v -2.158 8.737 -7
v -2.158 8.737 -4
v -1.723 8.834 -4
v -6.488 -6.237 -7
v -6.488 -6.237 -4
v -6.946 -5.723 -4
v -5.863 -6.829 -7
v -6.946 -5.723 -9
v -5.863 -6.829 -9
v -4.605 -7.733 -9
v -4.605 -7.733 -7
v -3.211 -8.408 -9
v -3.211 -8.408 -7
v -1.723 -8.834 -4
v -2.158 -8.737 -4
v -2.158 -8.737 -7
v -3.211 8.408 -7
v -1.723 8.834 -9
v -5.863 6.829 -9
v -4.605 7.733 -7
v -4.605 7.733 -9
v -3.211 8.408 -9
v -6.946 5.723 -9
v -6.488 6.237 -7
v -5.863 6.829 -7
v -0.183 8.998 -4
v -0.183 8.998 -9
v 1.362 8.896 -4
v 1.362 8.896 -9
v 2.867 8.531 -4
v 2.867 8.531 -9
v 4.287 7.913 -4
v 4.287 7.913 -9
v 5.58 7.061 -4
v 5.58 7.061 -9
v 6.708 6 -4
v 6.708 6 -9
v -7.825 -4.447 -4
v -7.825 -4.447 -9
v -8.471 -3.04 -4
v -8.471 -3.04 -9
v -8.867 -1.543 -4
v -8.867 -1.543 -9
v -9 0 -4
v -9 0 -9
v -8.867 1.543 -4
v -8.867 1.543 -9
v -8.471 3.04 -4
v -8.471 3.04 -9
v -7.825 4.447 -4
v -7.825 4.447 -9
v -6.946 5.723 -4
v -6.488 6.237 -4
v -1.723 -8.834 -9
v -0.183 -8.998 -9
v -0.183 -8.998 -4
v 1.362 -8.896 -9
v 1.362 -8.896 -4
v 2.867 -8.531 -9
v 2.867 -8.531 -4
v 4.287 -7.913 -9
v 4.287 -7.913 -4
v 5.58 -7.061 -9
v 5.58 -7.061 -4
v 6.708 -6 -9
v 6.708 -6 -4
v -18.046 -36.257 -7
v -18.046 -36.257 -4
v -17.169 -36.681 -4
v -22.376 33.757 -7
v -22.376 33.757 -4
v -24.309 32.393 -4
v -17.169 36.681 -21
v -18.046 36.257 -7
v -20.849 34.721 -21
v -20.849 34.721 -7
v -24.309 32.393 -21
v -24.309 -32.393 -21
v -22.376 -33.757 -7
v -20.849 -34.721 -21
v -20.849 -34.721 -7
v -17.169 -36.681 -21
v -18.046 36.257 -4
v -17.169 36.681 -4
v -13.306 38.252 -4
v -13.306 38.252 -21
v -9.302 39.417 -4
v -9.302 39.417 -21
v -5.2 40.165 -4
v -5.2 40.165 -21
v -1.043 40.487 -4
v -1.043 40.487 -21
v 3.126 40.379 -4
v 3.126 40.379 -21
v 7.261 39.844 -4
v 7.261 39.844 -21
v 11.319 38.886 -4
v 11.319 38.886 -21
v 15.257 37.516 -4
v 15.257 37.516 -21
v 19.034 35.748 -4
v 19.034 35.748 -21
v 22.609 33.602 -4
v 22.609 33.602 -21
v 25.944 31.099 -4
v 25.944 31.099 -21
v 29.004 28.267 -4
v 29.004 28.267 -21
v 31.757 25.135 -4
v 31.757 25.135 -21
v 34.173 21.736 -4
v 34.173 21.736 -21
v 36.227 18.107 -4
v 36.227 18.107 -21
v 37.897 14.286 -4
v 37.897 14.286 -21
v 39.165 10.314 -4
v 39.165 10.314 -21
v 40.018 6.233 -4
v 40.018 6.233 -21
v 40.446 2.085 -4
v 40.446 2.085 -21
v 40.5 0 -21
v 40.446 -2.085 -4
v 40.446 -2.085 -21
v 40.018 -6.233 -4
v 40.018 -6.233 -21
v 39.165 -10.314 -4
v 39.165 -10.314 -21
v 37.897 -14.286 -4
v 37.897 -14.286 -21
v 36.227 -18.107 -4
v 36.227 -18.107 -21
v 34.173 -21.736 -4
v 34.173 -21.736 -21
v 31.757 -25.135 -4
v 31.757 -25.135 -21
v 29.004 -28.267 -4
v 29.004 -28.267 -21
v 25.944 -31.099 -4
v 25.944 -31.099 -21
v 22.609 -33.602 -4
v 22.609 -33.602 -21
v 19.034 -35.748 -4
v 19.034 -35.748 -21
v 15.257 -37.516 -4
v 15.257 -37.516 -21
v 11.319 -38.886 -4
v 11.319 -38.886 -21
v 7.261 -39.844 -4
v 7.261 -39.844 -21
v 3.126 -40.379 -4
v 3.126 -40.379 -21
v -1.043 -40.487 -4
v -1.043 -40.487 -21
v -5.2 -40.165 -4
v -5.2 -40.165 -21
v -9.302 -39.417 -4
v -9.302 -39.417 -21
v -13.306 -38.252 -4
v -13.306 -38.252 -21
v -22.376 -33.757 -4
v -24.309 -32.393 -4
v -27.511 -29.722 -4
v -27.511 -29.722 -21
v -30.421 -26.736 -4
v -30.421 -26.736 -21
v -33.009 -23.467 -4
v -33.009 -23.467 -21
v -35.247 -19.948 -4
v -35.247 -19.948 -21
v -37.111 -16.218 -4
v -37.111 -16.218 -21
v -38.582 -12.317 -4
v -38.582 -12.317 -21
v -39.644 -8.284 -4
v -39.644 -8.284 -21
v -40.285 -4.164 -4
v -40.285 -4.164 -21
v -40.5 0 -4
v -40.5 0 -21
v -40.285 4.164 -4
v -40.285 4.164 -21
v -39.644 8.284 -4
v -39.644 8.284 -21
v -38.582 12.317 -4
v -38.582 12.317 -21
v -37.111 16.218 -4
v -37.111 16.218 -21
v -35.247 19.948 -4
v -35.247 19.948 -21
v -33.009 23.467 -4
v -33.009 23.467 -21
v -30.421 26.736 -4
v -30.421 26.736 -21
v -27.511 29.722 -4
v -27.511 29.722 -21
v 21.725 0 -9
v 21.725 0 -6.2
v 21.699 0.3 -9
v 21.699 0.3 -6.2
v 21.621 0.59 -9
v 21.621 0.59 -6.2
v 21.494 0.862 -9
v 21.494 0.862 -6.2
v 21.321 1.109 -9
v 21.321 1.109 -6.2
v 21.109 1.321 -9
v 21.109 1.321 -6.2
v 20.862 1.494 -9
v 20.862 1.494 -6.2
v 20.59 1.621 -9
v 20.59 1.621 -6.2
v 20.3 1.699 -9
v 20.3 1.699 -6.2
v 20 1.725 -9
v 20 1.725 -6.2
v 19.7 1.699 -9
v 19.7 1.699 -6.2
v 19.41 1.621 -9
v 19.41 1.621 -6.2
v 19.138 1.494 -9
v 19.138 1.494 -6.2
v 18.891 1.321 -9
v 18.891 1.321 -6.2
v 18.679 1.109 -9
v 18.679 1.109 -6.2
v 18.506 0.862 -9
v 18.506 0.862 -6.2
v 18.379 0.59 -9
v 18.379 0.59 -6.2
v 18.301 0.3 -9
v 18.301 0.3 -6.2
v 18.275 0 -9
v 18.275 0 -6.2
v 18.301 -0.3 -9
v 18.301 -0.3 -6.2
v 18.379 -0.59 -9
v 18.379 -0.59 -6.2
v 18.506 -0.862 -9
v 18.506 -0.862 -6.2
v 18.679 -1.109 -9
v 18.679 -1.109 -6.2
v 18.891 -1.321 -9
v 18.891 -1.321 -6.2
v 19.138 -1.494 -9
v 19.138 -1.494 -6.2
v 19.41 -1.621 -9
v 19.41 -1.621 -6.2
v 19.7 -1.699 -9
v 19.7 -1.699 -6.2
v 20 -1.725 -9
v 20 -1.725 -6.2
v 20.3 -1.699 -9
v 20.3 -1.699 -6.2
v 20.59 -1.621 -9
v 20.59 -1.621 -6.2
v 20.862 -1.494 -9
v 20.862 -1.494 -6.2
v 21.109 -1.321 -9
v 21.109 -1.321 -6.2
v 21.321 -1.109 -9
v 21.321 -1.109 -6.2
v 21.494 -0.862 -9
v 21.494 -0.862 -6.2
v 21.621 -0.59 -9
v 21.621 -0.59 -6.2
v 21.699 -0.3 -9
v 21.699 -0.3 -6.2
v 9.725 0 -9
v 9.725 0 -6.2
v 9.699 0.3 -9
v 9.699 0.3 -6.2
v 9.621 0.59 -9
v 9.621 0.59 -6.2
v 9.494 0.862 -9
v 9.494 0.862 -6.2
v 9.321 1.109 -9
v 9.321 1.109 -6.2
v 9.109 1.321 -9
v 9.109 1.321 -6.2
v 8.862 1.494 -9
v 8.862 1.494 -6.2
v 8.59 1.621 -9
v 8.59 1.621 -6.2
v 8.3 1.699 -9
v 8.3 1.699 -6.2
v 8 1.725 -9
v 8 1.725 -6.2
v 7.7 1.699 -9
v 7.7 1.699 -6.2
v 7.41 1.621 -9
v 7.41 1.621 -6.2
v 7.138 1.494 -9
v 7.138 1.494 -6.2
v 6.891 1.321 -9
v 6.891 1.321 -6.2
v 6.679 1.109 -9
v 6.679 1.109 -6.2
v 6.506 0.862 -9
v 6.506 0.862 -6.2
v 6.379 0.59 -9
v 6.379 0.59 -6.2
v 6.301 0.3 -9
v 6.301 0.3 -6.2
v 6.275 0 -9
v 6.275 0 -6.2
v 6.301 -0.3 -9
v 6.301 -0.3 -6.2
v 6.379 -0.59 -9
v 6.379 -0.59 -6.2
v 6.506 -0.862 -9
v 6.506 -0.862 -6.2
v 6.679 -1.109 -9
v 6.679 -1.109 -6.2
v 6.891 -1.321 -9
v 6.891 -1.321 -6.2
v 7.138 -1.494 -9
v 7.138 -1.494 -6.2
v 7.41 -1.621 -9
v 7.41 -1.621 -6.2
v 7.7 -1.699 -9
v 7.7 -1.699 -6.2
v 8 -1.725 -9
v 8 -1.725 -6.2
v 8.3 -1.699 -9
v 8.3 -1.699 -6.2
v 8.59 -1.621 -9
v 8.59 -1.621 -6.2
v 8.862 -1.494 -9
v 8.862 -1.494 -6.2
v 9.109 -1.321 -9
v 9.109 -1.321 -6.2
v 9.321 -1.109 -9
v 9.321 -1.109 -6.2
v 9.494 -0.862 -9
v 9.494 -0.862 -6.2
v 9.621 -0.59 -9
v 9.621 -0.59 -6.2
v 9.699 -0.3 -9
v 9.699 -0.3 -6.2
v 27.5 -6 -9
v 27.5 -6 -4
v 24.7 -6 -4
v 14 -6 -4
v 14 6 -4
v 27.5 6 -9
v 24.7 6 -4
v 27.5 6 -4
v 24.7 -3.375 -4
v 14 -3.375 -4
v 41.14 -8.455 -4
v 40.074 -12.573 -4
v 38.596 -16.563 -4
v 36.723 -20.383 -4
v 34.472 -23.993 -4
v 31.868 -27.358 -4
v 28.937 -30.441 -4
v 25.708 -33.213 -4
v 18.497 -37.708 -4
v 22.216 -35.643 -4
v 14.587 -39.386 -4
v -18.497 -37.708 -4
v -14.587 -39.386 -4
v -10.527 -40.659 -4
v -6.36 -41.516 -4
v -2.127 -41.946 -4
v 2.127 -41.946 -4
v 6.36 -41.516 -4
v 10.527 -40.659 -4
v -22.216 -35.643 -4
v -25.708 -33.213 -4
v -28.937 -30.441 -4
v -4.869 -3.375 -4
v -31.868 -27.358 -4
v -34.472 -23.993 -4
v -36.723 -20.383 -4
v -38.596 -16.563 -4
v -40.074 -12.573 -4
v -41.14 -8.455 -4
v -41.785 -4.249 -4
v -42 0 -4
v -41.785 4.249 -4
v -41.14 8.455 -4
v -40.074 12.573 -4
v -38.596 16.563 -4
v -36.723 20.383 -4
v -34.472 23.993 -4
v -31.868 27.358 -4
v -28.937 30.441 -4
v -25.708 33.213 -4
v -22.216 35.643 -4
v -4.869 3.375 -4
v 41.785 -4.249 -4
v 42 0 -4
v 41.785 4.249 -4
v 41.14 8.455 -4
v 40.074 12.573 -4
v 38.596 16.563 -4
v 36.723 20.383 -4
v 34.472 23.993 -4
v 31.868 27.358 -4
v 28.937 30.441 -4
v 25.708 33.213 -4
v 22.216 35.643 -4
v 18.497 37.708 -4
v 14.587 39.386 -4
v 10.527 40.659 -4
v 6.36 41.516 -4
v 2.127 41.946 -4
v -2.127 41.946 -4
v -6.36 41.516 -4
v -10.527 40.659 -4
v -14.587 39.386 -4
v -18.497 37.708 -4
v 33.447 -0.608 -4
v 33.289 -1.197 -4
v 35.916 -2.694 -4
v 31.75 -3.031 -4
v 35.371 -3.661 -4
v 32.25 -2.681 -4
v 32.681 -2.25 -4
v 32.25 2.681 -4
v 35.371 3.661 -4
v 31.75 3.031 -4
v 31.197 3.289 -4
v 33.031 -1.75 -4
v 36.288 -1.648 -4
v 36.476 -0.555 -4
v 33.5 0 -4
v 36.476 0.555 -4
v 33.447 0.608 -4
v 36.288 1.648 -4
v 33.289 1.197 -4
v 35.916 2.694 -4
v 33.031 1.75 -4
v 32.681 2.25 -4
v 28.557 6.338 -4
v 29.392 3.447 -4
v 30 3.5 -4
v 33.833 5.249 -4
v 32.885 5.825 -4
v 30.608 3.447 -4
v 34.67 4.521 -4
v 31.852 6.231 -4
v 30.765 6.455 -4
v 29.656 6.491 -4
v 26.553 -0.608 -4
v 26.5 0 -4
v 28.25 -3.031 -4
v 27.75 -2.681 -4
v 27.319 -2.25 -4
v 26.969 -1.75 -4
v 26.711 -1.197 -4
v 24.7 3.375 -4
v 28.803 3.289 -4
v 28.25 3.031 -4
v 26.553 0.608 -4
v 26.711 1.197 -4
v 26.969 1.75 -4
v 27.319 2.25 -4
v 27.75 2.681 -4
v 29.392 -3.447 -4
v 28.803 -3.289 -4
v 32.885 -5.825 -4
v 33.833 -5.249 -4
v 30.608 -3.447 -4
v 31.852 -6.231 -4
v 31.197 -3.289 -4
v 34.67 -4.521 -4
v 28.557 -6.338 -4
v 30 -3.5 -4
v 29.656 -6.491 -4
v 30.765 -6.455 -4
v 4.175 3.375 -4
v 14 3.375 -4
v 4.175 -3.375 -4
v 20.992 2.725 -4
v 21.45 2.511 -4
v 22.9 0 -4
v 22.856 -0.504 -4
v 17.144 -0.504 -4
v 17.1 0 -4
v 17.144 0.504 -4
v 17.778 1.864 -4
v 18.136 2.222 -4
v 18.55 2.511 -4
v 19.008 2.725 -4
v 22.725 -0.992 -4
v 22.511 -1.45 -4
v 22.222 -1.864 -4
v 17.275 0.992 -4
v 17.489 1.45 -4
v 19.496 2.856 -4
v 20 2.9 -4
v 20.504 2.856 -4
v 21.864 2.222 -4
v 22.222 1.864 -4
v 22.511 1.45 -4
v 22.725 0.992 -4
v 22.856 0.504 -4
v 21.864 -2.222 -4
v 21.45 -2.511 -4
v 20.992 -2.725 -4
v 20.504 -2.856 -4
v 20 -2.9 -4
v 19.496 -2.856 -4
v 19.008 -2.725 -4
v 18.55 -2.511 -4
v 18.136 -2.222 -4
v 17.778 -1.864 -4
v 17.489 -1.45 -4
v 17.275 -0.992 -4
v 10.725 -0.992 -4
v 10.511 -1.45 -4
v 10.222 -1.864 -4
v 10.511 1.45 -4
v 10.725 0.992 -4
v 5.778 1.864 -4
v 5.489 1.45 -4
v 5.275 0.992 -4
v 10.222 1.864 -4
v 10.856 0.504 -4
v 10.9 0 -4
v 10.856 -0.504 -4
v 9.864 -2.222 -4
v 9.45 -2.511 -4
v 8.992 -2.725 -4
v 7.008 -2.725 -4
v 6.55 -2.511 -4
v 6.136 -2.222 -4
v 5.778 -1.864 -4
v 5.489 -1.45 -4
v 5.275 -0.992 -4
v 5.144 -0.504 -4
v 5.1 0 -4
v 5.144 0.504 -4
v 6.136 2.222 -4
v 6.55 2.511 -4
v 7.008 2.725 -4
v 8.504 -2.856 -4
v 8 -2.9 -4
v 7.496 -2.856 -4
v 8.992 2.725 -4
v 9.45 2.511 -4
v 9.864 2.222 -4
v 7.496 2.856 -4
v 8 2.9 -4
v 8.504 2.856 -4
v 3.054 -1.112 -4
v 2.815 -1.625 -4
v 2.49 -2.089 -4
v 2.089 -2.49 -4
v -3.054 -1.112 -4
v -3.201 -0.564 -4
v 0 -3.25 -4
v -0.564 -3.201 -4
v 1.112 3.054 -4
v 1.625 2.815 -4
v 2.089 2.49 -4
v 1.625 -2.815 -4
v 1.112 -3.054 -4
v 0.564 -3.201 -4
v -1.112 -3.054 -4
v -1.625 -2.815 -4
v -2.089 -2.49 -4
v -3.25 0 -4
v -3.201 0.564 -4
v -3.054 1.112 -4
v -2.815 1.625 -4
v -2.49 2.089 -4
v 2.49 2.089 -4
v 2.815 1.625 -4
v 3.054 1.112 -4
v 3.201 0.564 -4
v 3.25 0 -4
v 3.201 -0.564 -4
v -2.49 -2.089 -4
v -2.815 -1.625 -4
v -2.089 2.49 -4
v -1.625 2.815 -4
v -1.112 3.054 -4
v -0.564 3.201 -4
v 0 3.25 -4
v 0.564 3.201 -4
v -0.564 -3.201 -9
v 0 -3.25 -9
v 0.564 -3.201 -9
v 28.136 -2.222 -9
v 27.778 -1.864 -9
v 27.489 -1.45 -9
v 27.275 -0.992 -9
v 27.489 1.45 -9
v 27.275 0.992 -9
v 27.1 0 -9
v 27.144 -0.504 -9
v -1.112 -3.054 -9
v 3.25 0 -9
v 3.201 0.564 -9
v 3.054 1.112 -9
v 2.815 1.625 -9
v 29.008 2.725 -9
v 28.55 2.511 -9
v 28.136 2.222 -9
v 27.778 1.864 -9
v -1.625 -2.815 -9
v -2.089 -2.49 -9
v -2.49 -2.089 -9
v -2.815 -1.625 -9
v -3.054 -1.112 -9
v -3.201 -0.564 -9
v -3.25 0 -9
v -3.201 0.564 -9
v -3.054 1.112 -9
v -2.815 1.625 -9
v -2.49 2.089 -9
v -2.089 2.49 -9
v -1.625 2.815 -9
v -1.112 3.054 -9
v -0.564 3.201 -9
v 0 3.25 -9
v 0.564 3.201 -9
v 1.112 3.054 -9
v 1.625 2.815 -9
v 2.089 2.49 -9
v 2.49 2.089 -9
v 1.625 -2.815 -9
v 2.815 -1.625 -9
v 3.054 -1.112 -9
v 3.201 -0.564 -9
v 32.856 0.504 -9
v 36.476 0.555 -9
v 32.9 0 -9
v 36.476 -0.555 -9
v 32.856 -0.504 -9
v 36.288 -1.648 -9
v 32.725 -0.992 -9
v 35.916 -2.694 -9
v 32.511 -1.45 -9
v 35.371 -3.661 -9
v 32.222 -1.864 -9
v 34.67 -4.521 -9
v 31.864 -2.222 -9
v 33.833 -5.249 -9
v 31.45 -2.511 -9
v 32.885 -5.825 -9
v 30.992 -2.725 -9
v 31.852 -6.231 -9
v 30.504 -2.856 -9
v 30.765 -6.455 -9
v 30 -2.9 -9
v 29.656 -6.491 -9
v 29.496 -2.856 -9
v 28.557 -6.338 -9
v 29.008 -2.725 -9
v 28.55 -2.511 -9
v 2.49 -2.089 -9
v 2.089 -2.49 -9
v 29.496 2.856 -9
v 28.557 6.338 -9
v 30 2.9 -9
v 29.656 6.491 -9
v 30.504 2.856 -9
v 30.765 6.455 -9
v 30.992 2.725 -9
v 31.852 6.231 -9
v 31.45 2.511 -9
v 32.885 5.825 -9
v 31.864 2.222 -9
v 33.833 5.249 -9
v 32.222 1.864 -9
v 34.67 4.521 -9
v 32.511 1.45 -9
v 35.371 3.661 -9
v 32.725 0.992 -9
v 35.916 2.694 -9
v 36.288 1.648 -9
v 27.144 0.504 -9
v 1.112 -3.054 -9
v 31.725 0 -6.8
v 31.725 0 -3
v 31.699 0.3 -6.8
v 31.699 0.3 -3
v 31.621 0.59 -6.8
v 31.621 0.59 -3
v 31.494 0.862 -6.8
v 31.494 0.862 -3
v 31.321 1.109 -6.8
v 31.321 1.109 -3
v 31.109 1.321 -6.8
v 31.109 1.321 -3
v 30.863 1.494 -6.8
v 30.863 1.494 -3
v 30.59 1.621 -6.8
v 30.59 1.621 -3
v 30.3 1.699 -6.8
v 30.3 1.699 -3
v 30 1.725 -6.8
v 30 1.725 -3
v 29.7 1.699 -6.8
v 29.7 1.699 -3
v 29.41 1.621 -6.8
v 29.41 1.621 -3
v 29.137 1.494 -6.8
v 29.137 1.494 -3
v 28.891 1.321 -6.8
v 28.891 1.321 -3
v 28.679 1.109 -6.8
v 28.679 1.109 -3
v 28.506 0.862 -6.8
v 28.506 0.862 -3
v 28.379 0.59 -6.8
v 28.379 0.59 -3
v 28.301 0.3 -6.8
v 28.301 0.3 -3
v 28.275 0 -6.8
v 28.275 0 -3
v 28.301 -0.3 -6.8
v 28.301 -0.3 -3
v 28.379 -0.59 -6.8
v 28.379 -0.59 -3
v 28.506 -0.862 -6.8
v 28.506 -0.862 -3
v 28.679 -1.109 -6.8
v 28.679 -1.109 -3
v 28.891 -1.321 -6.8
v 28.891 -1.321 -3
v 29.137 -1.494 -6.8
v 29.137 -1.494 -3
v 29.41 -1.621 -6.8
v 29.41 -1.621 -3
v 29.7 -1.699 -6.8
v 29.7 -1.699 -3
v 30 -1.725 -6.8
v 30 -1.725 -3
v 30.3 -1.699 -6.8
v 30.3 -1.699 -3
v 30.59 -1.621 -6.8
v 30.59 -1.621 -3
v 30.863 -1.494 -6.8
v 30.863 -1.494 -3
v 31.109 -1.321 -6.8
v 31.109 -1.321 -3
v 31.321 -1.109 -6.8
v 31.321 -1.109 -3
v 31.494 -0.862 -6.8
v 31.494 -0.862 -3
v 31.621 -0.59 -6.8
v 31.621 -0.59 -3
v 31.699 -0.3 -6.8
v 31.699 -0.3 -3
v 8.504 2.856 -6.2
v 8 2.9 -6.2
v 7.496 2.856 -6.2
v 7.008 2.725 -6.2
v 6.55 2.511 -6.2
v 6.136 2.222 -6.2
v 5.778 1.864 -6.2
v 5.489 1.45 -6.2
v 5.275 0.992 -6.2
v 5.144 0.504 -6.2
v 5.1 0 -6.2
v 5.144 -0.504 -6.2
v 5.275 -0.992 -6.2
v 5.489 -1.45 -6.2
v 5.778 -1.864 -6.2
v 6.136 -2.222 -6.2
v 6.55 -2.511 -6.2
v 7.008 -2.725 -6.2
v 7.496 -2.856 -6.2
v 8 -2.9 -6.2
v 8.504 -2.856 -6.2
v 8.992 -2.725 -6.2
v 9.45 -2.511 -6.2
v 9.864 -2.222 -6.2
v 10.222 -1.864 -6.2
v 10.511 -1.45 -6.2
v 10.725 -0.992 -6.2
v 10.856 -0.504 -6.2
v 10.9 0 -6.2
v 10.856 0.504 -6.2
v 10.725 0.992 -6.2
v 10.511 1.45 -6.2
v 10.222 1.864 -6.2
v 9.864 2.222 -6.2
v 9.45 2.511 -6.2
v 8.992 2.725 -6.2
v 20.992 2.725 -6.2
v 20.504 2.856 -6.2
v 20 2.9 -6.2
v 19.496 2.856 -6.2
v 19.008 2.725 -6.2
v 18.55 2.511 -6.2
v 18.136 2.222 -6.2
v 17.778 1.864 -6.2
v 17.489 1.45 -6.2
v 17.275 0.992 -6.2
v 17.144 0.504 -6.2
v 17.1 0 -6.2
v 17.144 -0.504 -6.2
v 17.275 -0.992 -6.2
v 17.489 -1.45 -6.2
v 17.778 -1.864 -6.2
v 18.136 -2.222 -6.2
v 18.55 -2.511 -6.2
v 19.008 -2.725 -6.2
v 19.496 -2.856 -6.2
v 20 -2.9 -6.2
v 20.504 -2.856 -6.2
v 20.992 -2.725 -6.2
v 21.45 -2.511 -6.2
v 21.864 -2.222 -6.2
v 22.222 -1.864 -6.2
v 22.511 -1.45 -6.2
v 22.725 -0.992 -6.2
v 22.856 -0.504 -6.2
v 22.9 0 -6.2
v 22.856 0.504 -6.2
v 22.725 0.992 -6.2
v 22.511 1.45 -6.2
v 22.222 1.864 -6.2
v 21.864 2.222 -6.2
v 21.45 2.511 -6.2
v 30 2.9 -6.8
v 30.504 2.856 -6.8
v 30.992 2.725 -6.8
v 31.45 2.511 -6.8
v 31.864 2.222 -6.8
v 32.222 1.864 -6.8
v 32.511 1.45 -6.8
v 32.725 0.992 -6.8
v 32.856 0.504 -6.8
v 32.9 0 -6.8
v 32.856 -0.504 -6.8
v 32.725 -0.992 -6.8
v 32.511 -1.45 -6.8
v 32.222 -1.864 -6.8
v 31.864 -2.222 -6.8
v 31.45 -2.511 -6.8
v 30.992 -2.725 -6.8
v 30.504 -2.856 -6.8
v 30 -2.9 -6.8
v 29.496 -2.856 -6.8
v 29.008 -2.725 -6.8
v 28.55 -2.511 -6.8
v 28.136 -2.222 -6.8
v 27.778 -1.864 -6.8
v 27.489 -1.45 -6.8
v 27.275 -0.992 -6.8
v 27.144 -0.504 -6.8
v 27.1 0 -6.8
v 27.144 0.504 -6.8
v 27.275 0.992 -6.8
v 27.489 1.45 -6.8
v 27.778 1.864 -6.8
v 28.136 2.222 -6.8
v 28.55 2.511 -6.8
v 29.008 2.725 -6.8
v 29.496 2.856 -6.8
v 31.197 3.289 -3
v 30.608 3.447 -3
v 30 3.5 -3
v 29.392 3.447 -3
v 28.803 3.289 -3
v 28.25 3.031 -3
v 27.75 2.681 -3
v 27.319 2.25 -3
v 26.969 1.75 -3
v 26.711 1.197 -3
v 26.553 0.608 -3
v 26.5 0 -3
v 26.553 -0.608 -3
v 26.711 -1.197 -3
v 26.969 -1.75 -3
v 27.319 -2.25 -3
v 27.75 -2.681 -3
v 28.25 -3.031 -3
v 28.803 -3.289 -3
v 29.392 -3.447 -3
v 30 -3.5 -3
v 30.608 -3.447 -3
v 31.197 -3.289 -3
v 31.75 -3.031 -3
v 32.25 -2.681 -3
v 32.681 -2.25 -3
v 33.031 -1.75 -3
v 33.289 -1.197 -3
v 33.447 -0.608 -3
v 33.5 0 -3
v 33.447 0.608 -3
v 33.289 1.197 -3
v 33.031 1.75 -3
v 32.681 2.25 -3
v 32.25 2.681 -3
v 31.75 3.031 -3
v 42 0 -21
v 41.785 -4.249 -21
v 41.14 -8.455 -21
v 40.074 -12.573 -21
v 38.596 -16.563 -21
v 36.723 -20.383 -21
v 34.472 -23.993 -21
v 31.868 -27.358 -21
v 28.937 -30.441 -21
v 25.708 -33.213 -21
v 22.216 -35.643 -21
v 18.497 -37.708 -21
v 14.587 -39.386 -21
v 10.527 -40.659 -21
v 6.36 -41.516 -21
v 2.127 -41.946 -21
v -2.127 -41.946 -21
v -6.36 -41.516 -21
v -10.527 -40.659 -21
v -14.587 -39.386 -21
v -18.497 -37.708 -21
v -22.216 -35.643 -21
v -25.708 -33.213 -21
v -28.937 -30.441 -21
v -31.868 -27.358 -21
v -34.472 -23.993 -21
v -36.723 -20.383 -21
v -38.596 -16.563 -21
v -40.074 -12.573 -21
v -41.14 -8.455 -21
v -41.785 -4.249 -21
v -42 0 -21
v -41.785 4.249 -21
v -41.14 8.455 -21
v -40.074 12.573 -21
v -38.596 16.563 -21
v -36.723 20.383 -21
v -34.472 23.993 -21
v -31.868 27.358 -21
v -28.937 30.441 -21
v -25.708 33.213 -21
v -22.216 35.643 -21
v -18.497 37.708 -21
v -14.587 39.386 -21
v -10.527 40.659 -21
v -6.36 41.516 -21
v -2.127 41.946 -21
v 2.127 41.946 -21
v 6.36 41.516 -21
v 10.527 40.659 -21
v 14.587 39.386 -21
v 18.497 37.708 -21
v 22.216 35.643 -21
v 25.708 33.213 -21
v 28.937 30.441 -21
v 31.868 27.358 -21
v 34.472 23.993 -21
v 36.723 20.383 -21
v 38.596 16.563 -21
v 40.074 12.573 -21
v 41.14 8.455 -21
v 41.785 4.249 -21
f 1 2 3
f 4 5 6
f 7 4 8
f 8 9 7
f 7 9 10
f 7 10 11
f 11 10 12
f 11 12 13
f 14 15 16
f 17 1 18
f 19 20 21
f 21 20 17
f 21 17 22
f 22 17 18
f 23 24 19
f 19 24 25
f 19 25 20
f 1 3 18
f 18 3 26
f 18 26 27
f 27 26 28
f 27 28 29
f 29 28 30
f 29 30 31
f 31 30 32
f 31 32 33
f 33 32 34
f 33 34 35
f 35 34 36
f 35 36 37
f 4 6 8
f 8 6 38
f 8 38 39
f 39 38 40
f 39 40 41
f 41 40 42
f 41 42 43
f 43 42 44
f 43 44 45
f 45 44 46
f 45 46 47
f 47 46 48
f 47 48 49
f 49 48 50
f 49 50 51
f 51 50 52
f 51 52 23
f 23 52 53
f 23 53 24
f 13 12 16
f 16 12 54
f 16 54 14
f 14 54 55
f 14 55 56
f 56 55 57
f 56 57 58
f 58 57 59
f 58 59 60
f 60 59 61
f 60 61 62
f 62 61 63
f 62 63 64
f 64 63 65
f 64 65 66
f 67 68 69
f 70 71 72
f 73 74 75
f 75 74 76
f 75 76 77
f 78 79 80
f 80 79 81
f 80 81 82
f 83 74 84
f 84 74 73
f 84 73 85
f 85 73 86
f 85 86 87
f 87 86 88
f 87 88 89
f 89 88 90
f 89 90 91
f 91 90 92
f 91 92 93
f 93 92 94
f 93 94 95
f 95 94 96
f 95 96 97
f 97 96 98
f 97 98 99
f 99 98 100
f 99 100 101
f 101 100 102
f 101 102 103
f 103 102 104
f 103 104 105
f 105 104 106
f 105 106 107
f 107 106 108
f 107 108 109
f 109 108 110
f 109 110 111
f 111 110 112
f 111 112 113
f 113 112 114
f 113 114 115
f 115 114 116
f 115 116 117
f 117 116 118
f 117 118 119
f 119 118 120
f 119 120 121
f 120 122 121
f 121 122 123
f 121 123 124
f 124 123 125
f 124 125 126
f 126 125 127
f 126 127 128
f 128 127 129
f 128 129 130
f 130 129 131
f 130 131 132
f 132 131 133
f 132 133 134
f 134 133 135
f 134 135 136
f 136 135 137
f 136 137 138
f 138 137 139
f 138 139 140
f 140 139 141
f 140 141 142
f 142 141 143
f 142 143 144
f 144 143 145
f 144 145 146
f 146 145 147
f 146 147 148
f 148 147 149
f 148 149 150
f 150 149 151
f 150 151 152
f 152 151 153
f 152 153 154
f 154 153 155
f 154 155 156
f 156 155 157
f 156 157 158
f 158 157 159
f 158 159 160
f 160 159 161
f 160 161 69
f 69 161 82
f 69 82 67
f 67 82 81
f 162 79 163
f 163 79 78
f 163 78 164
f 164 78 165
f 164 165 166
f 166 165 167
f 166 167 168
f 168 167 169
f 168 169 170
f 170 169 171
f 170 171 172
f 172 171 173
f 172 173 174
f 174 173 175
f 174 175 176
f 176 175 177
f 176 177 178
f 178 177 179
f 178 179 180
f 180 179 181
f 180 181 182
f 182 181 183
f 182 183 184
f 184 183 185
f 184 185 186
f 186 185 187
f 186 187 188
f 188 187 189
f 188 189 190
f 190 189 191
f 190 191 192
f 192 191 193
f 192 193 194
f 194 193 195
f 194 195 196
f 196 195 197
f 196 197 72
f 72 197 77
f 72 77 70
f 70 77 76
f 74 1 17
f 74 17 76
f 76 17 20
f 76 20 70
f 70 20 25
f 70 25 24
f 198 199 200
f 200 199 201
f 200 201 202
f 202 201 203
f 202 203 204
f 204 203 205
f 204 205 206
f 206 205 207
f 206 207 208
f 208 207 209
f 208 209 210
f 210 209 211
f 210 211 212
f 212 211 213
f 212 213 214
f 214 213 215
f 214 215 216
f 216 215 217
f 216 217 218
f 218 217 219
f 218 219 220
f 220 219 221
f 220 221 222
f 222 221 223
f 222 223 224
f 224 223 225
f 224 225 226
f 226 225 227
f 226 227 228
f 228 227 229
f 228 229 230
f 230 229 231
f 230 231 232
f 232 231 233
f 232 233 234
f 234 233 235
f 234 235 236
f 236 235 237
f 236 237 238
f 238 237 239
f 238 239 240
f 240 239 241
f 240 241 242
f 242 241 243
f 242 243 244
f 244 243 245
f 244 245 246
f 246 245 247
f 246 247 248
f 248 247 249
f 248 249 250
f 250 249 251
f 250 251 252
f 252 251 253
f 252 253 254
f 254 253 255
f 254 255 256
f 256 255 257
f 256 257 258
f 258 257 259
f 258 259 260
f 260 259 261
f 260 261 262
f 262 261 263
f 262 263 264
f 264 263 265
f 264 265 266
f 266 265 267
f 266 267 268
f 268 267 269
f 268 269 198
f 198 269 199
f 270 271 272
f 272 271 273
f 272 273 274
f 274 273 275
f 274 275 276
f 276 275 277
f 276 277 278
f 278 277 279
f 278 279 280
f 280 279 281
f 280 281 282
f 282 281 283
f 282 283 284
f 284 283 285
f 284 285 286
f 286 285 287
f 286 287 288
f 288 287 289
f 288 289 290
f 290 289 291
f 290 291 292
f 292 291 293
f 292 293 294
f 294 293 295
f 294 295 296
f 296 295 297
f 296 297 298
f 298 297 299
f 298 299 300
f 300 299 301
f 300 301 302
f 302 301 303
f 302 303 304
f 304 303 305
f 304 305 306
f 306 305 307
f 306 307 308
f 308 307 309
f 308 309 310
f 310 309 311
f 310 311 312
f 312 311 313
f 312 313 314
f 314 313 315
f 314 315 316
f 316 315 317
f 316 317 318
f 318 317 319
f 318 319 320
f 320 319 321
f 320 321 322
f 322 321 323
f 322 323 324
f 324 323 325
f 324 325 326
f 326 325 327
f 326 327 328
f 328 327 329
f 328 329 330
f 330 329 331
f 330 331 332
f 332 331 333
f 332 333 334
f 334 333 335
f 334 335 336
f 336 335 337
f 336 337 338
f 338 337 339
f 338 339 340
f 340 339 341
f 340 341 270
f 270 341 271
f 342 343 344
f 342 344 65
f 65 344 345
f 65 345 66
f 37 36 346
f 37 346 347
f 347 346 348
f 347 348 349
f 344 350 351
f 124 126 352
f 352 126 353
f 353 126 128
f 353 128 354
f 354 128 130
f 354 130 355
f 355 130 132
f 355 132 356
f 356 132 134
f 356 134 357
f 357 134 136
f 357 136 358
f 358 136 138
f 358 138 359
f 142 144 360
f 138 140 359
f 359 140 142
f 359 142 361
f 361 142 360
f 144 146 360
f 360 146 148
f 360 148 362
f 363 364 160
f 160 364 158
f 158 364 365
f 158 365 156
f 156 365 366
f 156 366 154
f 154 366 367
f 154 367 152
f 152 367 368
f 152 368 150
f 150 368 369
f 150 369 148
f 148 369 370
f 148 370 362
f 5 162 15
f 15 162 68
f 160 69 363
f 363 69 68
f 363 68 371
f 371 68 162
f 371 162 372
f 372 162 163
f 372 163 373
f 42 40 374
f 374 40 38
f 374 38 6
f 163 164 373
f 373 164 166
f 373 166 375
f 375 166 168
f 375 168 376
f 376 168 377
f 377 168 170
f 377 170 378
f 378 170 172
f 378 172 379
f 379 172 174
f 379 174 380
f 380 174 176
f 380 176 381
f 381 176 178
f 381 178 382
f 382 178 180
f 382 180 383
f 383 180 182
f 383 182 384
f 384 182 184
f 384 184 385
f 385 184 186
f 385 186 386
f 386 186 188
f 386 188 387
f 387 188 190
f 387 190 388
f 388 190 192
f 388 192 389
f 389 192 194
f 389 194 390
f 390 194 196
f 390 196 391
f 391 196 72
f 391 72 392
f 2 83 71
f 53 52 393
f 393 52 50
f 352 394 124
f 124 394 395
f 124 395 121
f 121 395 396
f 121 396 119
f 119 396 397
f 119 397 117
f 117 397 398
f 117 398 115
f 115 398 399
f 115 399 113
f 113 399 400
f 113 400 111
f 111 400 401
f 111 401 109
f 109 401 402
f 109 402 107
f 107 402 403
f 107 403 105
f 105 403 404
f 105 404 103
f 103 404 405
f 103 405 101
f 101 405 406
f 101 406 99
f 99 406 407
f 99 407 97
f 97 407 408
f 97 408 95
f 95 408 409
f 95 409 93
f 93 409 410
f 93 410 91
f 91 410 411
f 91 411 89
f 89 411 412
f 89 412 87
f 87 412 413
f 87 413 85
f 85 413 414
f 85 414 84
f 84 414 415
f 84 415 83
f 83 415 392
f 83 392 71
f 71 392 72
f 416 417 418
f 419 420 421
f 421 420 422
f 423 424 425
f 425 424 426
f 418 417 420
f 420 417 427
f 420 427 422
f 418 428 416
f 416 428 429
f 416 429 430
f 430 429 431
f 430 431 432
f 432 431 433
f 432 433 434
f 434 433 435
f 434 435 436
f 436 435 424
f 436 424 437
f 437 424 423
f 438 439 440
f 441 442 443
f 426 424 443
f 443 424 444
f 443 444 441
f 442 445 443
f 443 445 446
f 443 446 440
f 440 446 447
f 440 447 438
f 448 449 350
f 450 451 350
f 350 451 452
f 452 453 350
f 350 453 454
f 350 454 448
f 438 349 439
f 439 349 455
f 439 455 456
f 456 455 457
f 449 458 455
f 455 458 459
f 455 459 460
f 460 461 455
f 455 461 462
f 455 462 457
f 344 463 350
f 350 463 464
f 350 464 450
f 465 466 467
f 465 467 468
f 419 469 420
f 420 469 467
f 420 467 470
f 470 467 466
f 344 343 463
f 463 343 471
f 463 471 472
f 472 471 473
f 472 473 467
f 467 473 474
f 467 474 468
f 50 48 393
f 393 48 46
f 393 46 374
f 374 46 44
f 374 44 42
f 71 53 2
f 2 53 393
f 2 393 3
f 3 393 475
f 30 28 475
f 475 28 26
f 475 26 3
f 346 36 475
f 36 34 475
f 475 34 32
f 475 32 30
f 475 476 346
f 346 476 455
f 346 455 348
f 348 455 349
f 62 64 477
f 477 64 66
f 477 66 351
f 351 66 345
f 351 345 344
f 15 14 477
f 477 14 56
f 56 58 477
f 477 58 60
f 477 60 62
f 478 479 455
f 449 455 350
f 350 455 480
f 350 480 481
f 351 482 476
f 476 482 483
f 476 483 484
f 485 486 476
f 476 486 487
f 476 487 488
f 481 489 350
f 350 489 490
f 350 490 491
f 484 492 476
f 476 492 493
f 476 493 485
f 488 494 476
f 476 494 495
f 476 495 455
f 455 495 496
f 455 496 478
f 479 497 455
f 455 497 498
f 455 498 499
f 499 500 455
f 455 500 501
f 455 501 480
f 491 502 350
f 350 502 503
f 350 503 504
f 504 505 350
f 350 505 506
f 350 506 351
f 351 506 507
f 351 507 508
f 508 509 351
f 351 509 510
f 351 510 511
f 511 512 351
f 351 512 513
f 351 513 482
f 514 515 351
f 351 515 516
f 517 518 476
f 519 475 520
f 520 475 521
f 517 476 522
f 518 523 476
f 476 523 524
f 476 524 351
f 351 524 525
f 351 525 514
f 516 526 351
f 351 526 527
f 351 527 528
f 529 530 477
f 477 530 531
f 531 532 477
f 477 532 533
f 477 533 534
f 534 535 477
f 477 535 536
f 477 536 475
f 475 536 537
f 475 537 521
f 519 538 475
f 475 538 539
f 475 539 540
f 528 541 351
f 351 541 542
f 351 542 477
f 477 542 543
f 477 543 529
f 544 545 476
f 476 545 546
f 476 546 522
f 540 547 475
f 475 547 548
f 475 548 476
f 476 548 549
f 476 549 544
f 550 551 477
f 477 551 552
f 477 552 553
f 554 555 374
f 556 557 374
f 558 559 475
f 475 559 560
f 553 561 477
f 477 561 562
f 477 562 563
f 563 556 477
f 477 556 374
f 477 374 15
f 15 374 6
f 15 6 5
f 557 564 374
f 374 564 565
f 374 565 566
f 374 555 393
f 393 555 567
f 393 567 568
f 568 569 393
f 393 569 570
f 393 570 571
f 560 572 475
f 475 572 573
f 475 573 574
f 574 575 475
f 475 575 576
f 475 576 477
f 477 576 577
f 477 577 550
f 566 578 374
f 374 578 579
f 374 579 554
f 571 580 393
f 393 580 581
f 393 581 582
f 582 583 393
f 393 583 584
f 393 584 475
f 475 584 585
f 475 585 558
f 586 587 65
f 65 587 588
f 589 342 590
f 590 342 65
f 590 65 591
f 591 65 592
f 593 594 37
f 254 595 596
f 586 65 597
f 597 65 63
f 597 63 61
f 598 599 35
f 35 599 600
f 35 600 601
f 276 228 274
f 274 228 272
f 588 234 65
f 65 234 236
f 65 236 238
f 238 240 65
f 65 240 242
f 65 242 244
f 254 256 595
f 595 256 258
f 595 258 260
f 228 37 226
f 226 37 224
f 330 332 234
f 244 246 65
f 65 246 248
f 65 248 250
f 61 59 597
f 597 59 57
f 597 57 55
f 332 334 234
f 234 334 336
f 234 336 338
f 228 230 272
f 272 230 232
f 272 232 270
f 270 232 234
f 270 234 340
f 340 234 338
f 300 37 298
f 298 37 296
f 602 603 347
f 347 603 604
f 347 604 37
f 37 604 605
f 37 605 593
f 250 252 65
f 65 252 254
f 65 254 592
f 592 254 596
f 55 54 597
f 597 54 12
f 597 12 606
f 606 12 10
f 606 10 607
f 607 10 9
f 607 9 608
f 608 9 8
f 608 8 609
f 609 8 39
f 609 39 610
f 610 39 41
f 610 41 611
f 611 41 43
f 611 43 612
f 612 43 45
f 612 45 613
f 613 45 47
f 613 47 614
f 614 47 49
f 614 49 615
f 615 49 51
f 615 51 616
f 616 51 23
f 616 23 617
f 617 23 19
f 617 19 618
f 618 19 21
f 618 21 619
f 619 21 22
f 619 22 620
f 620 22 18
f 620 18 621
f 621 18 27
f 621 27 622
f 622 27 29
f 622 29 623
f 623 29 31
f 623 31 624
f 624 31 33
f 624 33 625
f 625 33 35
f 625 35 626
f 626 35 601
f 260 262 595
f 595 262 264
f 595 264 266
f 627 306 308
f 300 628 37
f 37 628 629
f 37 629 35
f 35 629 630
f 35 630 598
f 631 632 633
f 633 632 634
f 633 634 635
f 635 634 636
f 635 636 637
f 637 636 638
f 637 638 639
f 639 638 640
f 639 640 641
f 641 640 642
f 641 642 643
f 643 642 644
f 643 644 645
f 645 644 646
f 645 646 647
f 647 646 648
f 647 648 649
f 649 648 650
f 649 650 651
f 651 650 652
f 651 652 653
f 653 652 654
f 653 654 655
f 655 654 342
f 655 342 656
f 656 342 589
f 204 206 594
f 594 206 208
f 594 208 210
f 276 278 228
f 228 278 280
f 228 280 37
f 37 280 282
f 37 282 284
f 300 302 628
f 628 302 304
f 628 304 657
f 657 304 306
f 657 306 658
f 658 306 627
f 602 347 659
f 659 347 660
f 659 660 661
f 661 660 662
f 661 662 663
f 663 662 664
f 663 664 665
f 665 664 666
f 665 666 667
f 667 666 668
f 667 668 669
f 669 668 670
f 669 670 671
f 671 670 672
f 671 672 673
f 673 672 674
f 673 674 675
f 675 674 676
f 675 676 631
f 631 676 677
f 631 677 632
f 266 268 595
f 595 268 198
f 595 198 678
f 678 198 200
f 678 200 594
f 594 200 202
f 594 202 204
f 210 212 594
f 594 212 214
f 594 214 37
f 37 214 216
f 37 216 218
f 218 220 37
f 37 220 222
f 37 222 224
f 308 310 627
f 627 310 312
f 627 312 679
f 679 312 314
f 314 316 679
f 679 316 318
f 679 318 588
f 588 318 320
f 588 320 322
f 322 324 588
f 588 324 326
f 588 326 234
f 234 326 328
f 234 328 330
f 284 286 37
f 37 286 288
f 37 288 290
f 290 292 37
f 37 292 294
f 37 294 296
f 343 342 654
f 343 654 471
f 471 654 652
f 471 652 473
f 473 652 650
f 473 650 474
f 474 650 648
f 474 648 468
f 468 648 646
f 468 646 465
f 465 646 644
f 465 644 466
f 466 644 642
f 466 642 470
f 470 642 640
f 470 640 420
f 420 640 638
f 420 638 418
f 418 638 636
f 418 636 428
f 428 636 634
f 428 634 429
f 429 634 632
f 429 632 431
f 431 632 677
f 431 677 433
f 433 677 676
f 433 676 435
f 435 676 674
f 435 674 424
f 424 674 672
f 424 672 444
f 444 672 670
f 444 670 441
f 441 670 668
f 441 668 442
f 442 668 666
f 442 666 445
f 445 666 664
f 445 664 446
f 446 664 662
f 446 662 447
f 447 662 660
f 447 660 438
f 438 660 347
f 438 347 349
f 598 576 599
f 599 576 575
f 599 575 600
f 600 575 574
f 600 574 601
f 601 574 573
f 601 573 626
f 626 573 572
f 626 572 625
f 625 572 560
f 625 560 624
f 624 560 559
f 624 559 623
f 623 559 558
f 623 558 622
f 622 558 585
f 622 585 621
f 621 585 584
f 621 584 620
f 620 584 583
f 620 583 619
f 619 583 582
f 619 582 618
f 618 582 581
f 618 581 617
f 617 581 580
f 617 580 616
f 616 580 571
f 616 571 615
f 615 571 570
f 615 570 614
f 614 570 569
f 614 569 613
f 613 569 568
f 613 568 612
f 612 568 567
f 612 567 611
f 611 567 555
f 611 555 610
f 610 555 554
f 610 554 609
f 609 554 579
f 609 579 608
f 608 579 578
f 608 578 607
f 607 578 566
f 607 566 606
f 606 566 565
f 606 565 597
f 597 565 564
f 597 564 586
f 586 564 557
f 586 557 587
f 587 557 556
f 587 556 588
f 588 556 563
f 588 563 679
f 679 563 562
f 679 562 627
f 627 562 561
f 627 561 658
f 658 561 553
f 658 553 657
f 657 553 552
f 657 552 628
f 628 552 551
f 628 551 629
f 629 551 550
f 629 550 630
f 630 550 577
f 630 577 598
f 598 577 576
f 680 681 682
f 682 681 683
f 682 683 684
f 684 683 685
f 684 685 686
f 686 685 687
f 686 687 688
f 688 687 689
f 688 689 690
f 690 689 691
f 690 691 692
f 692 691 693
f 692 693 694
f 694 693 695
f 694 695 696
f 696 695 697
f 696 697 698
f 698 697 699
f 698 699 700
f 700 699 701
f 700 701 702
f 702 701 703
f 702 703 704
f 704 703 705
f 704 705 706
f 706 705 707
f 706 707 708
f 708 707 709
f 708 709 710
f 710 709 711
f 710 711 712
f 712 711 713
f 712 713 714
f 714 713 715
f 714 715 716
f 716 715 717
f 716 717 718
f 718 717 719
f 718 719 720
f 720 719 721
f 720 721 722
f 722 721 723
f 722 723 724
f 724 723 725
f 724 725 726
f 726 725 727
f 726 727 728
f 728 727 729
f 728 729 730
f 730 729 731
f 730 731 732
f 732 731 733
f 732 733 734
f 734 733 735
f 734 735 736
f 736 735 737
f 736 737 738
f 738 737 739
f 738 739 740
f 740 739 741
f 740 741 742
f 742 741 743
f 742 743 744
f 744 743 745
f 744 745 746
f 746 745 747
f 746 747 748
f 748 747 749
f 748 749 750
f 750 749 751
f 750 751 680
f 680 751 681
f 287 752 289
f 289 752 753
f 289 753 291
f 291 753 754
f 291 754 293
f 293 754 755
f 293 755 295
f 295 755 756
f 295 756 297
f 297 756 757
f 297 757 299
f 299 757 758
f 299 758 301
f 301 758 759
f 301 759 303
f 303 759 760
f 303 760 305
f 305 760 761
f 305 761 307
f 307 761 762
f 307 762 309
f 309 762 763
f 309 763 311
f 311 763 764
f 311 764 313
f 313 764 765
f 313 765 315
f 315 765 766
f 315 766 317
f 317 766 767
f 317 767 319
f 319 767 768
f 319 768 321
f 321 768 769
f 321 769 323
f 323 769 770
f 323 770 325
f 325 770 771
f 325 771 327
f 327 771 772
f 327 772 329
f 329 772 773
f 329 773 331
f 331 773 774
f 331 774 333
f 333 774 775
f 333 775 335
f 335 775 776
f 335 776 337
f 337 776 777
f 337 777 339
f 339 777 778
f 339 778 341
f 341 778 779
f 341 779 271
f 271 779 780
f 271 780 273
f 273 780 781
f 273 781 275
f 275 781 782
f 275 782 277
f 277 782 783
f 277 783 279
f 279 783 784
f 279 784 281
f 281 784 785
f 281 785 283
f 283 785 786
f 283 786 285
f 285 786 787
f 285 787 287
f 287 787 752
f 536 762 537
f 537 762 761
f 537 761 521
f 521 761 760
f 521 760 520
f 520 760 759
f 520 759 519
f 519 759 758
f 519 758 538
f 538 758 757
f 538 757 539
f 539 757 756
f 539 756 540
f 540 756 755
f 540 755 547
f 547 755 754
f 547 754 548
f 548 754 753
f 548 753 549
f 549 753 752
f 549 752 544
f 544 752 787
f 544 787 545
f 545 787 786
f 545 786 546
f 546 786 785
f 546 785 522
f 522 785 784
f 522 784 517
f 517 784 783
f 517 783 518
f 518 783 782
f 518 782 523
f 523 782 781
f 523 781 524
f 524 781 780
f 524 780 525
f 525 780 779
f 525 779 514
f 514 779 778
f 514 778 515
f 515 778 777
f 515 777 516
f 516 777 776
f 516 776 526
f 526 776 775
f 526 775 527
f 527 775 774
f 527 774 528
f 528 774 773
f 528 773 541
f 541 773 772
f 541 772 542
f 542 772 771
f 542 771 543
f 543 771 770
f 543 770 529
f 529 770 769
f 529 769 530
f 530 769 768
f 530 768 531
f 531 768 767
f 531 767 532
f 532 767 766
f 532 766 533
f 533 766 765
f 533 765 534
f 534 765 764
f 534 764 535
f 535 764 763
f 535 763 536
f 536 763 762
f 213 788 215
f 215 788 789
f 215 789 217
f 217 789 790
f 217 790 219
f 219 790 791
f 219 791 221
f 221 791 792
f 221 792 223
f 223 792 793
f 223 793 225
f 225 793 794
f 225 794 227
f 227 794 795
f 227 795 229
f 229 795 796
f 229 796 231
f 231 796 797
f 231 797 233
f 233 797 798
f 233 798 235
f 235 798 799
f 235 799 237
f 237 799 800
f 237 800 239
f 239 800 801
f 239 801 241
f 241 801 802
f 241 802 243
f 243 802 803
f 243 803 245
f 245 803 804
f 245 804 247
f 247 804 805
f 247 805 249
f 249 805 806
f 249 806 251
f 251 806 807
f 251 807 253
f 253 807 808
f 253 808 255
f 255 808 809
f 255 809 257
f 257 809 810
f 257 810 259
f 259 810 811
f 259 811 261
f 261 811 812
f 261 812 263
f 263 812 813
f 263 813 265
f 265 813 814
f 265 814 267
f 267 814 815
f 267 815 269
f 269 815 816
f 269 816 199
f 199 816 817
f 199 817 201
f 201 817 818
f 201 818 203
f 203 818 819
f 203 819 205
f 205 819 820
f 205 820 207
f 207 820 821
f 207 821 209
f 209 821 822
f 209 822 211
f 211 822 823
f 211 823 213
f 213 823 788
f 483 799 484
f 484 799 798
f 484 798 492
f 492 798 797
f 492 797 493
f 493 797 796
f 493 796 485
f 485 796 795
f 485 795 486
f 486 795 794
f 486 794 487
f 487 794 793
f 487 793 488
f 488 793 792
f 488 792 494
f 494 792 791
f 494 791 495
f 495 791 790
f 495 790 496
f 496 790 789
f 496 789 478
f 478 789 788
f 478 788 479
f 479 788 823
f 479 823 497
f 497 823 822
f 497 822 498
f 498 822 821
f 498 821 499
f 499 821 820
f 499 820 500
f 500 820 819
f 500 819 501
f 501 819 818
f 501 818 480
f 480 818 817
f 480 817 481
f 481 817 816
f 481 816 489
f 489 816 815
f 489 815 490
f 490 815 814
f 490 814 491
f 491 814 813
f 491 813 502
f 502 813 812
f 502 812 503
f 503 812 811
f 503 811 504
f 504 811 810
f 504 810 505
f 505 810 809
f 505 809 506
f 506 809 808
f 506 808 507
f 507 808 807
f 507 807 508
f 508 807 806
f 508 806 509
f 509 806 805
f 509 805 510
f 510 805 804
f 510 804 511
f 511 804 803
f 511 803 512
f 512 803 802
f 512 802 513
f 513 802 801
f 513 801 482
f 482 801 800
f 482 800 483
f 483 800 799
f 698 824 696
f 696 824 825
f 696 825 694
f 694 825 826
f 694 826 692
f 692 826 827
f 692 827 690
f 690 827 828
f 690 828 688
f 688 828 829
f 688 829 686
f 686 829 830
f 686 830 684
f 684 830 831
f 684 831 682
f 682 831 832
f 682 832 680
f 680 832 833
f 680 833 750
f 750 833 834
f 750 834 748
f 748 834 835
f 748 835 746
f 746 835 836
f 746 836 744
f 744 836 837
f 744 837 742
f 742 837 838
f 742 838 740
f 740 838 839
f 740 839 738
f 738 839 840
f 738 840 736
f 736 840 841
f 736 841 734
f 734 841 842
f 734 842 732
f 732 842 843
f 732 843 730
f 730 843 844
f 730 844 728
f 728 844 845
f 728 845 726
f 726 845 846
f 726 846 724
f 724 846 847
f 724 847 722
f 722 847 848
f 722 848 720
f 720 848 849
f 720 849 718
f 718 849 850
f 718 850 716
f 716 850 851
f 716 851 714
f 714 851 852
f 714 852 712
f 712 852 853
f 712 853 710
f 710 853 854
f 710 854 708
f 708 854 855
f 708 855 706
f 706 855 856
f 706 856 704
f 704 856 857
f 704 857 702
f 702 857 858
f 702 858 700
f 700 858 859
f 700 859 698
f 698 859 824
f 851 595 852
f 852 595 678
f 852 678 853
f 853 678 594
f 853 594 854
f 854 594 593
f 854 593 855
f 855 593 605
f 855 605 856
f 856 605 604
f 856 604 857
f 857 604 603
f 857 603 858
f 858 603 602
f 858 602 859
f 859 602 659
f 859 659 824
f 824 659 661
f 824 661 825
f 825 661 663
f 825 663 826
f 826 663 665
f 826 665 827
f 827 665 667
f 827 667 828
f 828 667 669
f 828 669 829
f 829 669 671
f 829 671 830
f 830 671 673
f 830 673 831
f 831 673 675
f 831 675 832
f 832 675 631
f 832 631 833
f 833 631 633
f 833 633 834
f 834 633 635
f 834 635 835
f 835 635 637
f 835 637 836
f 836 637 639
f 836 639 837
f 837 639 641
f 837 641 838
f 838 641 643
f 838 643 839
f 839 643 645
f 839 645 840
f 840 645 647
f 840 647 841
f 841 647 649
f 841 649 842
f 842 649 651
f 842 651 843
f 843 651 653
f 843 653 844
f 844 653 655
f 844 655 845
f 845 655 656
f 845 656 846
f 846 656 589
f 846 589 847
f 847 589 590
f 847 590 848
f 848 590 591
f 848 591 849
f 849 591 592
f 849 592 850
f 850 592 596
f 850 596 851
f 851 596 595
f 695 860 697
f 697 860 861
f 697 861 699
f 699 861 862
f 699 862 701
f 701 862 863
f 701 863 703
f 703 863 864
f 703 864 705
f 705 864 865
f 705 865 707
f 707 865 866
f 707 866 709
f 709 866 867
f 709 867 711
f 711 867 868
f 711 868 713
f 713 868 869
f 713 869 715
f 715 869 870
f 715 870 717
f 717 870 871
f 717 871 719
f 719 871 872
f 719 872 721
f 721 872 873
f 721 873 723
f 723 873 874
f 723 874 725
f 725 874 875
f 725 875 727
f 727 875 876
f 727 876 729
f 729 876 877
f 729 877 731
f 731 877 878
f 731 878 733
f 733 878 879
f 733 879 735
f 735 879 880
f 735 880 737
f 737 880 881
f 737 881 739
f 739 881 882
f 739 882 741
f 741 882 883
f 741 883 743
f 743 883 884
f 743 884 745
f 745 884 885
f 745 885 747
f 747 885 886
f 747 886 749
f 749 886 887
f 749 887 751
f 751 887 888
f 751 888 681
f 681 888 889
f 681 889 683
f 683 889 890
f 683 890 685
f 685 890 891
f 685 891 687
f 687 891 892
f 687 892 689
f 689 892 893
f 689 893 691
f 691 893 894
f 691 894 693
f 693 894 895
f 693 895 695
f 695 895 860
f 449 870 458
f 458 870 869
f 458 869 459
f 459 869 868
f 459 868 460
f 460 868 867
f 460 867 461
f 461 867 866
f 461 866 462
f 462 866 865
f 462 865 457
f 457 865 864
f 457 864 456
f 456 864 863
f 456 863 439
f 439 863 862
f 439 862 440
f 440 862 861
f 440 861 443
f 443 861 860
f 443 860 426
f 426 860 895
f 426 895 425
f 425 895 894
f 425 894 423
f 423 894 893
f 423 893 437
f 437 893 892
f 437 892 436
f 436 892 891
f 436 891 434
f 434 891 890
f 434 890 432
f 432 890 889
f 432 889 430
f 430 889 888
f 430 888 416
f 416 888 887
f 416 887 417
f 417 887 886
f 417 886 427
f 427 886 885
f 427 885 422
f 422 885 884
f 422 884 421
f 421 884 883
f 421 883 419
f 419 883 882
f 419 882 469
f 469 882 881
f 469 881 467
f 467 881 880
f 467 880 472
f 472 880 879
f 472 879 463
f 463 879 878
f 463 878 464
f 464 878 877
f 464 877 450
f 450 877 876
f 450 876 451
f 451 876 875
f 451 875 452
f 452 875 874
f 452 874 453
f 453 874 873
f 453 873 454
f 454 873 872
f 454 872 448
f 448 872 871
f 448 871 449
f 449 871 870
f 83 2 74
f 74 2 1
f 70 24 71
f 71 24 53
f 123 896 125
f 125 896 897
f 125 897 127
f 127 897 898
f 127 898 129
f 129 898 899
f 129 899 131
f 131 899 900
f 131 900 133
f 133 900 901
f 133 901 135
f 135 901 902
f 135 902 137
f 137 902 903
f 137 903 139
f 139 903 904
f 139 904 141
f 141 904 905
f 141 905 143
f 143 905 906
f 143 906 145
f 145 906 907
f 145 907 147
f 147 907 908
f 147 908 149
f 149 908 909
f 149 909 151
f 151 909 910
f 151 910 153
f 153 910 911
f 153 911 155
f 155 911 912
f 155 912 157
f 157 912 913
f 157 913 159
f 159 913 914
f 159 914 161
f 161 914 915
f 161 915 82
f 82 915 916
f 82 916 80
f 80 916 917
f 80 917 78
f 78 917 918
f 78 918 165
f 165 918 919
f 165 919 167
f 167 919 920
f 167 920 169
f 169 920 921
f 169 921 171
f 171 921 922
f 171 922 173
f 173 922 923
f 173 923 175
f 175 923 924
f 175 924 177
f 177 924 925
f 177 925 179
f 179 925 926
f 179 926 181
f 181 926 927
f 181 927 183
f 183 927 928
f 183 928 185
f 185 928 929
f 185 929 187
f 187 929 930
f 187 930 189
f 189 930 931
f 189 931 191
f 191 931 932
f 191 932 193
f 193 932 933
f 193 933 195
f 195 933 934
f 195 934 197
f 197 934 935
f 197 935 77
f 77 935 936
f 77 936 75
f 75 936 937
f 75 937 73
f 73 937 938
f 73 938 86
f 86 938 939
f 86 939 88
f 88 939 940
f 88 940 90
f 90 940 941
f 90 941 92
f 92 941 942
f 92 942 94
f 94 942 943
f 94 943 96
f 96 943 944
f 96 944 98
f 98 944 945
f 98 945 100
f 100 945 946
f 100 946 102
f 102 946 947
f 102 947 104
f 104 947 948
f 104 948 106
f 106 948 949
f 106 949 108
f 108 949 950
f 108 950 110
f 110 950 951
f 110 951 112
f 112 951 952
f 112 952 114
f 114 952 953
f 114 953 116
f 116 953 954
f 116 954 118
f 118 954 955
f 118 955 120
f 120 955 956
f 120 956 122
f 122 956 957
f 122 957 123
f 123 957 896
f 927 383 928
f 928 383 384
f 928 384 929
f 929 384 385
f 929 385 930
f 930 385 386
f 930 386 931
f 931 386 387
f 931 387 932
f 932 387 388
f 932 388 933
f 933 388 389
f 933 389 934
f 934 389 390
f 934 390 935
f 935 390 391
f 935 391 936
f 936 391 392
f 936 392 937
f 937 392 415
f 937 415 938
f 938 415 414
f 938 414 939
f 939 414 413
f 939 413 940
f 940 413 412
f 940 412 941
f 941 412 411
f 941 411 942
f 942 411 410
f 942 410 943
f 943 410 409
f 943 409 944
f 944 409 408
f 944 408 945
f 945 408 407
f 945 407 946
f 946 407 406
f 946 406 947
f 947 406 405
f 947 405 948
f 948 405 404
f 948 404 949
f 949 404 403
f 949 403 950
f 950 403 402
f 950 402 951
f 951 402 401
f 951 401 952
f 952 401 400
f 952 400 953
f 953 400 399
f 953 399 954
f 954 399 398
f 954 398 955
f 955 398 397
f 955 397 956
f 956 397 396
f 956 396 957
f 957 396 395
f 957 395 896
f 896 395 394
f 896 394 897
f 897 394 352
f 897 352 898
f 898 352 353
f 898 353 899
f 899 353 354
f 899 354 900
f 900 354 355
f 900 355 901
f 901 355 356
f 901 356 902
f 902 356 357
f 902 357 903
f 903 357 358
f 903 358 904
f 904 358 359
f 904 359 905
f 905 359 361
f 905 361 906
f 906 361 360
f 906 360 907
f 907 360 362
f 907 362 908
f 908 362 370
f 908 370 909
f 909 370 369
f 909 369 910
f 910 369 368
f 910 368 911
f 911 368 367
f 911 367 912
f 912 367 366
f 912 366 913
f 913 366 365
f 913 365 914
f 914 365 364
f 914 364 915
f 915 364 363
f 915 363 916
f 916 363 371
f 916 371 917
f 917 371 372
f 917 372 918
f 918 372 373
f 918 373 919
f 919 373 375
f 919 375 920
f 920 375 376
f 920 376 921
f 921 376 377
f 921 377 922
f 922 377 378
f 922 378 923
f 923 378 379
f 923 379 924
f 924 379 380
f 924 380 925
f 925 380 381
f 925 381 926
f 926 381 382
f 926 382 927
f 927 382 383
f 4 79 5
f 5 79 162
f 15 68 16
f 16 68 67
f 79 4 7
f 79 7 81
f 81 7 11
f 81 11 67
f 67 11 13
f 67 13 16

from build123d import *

# Parameters (mm, degrees)
BOSS_EXTRUDE1_START     = -9
SKETCH1_W               = 30
SKETCH1_H               = 12
BOSS_EXTRUDE1_DEPTH     = 5
BOSS_EXTRUDE2_START     = -9
SKETCH2_R               = 9
BOSS_EXTRUDE2_DEPTH     = 5
BOSS_EXTRUDE3_START     = -9
SKETCH3_R               = 6.5
BOSS_EXTRUDE3_DEPTH     = 5
CUT_EXTRUDE1_DEPTH      = 39.655530005
CUT_EXTRUDE1_DEPTH_BACK = 39.655530005
SKETCH4_R               = 3.25
CUT_EXTRUDE2_DEPTH      = 39.655530005
CUT_EXTRUDE2_DEPTH_BACK = 39.655530005
SKETCH5_R               = 1.725
CUT_EXTRUDE3_START      = -6.2
SKETCH6_R               = 2.9
CUT_EXTRUDE3_DEPTH      = 2.2
CUT_EXTRUDE4_START      = -6.2
SKETCH7_R               = 2.9
CUT_EXTRUDE4_DEPTH      = 2.2
CUT_EXTRUDE5_START      = -9
SKETCH8_R               = 2.9
CUT_EXTRUDE5_DEPTH      = 2.2
BOSS_EXTRUDE4_START     = -4
SKETCH9_R               = 3.5
BOSS_EXTRUDE4_DEPTH     = 1
CUT_EXTRUDE6_DEPTH      = 39.655530005
CUT_EXTRUDE6_DEPTH_BACK = 39.655530005
SKETCH10_R              = 1.725
BOSS_EXTRUDE5_START     = -21
SKETCH11_R              = 42
SKETCH11_R_2            = 40.5
BOSS_EXTRUDE5_DEPTH     = 17
BOSS_EXTRUDE6_START     = -7
BOSS_EXTRUDE6_DEPTH     = 3


with BuildPart() as part:
    # Sketch1 → Boss-Extrude1 (new body)
    with BuildSketch(Plane.XY.offset(BOSS_EXTRUDE1_START)):
        with Locations((15, 0)):
            Rectangle(SKETCH1_W, SKETCH1_H)
    extrude(amount=BOSS_EXTRUDE1_DEPTH)

    # Sketch2 → Boss-Extrude2 (add)
    with BuildSketch(Plane.XY.offset(BOSS_EXTRUDE2_START)):
        Circle(SKETCH2_R)
    extrude(amount=BOSS_EXTRUDE2_DEPTH)

    # Sketch3 → Boss-Extrude3 (add)
    with BuildSketch(Plane.XY.offset(BOSS_EXTRUDE3_START)):
        with Locations((30, 0)):
            Circle(SKETCH3_R)
    extrude(amount=BOSS_EXTRUDE3_DEPTH)

    # Sketch4 → Cut-Extrude1 (cut, two sides: drawn at the far end of the back side and taken through both)
    with BuildSketch(Plane.XY.offset(-CUT_EXTRUDE1_DEPTH_BACK)):
        Circle(SKETCH4_R)
    extrude(amount=CUT_EXTRUDE1_DEPTH + CUT_EXTRUDE1_DEPTH_BACK, mode=Mode.SUBTRACT)

    # Sketch5 → Cut-Extrude2 (cut, two sides: drawn at the far end of the back side and taken through both)
    with BuildSketch(Plane.XY.offset(-CUT_EXTRUDE2_DEPTH_BACK)):
        with Locations((8, 0)):
            Circle(SKETCH5_R)
        with Locations((20, 0)):
            Circle(SKETCH5_R)
        with Locations((30, 0)):
            Circle(SKETCH5_R)
    extrude(amount=CUT_EXTRUDE2_DEPTH + CUT_EXTRUDE2_DEPTH_BACK, mode=Mode.SUBTRACT)

    # Sketch6 → Cut-Extrude3 (cut)
    with BuildSketch(Plane.XY.offset(CUT_EXTRUDE3_START)):
        with Locations((8, 0)):
            Circle(SKETCH6_R)
    extrude(amount=CUT_EXTRUDE3_DEPTH, mode=Mode.SUBTRACT)

    # Sketch7 → Cut-Extrude4 (cut)
    with BuildSketch(Plane.XY.offset(CUT_EXTRUDE4_START)):
        with Locations((20, 0)):
            Circle(SKETCH7_R)
    extrude(amount=CUT_EXTRUDE4_DEPTH, mode=Mode.SUBTRACT)

    # Sketch8 → Cut-Extrude5 (cut)
    with BuildSketch(Plane.XY.offset(CUT_EXTRUDE5_START)):
        with Locations((30, 0)):
            Circle(SKETCH8_R)
    extrude(amount=CUT_EXTRUDE5_DEPTH, mode=Mode.SUBTRACT)

    # Sketch9 → Boss-Extrude4 (add)
    with BuildSketch(Plane.XY.offset(BOSS_EXTRUDE4_START)):
        with Locations((30, 0)):
            Circle(SKETCH9_R)
    extrude(amount=BOSS_EXTRUDE4_DEPTH)

    # Sketch10 → Cut-Extrude6 (cut, two sides: drawn at the far end of the back side and taken through both)
    with BuildSketch(Plane.XY.offset(-CUT_EXTRUDE6_DEPTH_BACK)):
        with Locations((30, 0)):
            Circle(SKETCH10_R)
    extrude(amount=CUT_EXTRUDE6_DEPTH + CUT_EXTRUDE6_DEPTH_BACK, mode=Mode.SUBTRACT)



with BuildPart() as body_2:
    # Sketch11 → Boss-Extrude5 (new body)
    with BuildSketch(Plane.XY.offset(BOSS_EXTRUDE5_START)):
        Circle(SKETCH11_R)
        Circle(SKETCH11_R_2, mode=Mode.SUBTRACT)
    extrude(amount=BOSS_EXTRUDE5_DEPTH)


with BuildPart() as part_1:
    add(part.part)

    add(body_2.part)  # Boss-Extrude6 merges body 2
    # Sketch12 → Boss-Extrude6 (add)
    with BuildSketch(Plane.XY.offset(BOSS_EXTRUDE6_START)):
        Polygon((-1.334936491, 7.312177826), (-18.584936491, 37.190054257), (-22.915063509, 34.690054257), (-5.665063509, 4.812177826), align=None)
        Polygon((-5.665063509, -4.812177826), (-22.915063509, -34.690054257), (-18.584936491, -37.190054257), (-1.334936491, -7.312177826), align=None)
    extrude(amount=BOSS_EXTRUDE6_DEPTH)


solid = part_1.part
